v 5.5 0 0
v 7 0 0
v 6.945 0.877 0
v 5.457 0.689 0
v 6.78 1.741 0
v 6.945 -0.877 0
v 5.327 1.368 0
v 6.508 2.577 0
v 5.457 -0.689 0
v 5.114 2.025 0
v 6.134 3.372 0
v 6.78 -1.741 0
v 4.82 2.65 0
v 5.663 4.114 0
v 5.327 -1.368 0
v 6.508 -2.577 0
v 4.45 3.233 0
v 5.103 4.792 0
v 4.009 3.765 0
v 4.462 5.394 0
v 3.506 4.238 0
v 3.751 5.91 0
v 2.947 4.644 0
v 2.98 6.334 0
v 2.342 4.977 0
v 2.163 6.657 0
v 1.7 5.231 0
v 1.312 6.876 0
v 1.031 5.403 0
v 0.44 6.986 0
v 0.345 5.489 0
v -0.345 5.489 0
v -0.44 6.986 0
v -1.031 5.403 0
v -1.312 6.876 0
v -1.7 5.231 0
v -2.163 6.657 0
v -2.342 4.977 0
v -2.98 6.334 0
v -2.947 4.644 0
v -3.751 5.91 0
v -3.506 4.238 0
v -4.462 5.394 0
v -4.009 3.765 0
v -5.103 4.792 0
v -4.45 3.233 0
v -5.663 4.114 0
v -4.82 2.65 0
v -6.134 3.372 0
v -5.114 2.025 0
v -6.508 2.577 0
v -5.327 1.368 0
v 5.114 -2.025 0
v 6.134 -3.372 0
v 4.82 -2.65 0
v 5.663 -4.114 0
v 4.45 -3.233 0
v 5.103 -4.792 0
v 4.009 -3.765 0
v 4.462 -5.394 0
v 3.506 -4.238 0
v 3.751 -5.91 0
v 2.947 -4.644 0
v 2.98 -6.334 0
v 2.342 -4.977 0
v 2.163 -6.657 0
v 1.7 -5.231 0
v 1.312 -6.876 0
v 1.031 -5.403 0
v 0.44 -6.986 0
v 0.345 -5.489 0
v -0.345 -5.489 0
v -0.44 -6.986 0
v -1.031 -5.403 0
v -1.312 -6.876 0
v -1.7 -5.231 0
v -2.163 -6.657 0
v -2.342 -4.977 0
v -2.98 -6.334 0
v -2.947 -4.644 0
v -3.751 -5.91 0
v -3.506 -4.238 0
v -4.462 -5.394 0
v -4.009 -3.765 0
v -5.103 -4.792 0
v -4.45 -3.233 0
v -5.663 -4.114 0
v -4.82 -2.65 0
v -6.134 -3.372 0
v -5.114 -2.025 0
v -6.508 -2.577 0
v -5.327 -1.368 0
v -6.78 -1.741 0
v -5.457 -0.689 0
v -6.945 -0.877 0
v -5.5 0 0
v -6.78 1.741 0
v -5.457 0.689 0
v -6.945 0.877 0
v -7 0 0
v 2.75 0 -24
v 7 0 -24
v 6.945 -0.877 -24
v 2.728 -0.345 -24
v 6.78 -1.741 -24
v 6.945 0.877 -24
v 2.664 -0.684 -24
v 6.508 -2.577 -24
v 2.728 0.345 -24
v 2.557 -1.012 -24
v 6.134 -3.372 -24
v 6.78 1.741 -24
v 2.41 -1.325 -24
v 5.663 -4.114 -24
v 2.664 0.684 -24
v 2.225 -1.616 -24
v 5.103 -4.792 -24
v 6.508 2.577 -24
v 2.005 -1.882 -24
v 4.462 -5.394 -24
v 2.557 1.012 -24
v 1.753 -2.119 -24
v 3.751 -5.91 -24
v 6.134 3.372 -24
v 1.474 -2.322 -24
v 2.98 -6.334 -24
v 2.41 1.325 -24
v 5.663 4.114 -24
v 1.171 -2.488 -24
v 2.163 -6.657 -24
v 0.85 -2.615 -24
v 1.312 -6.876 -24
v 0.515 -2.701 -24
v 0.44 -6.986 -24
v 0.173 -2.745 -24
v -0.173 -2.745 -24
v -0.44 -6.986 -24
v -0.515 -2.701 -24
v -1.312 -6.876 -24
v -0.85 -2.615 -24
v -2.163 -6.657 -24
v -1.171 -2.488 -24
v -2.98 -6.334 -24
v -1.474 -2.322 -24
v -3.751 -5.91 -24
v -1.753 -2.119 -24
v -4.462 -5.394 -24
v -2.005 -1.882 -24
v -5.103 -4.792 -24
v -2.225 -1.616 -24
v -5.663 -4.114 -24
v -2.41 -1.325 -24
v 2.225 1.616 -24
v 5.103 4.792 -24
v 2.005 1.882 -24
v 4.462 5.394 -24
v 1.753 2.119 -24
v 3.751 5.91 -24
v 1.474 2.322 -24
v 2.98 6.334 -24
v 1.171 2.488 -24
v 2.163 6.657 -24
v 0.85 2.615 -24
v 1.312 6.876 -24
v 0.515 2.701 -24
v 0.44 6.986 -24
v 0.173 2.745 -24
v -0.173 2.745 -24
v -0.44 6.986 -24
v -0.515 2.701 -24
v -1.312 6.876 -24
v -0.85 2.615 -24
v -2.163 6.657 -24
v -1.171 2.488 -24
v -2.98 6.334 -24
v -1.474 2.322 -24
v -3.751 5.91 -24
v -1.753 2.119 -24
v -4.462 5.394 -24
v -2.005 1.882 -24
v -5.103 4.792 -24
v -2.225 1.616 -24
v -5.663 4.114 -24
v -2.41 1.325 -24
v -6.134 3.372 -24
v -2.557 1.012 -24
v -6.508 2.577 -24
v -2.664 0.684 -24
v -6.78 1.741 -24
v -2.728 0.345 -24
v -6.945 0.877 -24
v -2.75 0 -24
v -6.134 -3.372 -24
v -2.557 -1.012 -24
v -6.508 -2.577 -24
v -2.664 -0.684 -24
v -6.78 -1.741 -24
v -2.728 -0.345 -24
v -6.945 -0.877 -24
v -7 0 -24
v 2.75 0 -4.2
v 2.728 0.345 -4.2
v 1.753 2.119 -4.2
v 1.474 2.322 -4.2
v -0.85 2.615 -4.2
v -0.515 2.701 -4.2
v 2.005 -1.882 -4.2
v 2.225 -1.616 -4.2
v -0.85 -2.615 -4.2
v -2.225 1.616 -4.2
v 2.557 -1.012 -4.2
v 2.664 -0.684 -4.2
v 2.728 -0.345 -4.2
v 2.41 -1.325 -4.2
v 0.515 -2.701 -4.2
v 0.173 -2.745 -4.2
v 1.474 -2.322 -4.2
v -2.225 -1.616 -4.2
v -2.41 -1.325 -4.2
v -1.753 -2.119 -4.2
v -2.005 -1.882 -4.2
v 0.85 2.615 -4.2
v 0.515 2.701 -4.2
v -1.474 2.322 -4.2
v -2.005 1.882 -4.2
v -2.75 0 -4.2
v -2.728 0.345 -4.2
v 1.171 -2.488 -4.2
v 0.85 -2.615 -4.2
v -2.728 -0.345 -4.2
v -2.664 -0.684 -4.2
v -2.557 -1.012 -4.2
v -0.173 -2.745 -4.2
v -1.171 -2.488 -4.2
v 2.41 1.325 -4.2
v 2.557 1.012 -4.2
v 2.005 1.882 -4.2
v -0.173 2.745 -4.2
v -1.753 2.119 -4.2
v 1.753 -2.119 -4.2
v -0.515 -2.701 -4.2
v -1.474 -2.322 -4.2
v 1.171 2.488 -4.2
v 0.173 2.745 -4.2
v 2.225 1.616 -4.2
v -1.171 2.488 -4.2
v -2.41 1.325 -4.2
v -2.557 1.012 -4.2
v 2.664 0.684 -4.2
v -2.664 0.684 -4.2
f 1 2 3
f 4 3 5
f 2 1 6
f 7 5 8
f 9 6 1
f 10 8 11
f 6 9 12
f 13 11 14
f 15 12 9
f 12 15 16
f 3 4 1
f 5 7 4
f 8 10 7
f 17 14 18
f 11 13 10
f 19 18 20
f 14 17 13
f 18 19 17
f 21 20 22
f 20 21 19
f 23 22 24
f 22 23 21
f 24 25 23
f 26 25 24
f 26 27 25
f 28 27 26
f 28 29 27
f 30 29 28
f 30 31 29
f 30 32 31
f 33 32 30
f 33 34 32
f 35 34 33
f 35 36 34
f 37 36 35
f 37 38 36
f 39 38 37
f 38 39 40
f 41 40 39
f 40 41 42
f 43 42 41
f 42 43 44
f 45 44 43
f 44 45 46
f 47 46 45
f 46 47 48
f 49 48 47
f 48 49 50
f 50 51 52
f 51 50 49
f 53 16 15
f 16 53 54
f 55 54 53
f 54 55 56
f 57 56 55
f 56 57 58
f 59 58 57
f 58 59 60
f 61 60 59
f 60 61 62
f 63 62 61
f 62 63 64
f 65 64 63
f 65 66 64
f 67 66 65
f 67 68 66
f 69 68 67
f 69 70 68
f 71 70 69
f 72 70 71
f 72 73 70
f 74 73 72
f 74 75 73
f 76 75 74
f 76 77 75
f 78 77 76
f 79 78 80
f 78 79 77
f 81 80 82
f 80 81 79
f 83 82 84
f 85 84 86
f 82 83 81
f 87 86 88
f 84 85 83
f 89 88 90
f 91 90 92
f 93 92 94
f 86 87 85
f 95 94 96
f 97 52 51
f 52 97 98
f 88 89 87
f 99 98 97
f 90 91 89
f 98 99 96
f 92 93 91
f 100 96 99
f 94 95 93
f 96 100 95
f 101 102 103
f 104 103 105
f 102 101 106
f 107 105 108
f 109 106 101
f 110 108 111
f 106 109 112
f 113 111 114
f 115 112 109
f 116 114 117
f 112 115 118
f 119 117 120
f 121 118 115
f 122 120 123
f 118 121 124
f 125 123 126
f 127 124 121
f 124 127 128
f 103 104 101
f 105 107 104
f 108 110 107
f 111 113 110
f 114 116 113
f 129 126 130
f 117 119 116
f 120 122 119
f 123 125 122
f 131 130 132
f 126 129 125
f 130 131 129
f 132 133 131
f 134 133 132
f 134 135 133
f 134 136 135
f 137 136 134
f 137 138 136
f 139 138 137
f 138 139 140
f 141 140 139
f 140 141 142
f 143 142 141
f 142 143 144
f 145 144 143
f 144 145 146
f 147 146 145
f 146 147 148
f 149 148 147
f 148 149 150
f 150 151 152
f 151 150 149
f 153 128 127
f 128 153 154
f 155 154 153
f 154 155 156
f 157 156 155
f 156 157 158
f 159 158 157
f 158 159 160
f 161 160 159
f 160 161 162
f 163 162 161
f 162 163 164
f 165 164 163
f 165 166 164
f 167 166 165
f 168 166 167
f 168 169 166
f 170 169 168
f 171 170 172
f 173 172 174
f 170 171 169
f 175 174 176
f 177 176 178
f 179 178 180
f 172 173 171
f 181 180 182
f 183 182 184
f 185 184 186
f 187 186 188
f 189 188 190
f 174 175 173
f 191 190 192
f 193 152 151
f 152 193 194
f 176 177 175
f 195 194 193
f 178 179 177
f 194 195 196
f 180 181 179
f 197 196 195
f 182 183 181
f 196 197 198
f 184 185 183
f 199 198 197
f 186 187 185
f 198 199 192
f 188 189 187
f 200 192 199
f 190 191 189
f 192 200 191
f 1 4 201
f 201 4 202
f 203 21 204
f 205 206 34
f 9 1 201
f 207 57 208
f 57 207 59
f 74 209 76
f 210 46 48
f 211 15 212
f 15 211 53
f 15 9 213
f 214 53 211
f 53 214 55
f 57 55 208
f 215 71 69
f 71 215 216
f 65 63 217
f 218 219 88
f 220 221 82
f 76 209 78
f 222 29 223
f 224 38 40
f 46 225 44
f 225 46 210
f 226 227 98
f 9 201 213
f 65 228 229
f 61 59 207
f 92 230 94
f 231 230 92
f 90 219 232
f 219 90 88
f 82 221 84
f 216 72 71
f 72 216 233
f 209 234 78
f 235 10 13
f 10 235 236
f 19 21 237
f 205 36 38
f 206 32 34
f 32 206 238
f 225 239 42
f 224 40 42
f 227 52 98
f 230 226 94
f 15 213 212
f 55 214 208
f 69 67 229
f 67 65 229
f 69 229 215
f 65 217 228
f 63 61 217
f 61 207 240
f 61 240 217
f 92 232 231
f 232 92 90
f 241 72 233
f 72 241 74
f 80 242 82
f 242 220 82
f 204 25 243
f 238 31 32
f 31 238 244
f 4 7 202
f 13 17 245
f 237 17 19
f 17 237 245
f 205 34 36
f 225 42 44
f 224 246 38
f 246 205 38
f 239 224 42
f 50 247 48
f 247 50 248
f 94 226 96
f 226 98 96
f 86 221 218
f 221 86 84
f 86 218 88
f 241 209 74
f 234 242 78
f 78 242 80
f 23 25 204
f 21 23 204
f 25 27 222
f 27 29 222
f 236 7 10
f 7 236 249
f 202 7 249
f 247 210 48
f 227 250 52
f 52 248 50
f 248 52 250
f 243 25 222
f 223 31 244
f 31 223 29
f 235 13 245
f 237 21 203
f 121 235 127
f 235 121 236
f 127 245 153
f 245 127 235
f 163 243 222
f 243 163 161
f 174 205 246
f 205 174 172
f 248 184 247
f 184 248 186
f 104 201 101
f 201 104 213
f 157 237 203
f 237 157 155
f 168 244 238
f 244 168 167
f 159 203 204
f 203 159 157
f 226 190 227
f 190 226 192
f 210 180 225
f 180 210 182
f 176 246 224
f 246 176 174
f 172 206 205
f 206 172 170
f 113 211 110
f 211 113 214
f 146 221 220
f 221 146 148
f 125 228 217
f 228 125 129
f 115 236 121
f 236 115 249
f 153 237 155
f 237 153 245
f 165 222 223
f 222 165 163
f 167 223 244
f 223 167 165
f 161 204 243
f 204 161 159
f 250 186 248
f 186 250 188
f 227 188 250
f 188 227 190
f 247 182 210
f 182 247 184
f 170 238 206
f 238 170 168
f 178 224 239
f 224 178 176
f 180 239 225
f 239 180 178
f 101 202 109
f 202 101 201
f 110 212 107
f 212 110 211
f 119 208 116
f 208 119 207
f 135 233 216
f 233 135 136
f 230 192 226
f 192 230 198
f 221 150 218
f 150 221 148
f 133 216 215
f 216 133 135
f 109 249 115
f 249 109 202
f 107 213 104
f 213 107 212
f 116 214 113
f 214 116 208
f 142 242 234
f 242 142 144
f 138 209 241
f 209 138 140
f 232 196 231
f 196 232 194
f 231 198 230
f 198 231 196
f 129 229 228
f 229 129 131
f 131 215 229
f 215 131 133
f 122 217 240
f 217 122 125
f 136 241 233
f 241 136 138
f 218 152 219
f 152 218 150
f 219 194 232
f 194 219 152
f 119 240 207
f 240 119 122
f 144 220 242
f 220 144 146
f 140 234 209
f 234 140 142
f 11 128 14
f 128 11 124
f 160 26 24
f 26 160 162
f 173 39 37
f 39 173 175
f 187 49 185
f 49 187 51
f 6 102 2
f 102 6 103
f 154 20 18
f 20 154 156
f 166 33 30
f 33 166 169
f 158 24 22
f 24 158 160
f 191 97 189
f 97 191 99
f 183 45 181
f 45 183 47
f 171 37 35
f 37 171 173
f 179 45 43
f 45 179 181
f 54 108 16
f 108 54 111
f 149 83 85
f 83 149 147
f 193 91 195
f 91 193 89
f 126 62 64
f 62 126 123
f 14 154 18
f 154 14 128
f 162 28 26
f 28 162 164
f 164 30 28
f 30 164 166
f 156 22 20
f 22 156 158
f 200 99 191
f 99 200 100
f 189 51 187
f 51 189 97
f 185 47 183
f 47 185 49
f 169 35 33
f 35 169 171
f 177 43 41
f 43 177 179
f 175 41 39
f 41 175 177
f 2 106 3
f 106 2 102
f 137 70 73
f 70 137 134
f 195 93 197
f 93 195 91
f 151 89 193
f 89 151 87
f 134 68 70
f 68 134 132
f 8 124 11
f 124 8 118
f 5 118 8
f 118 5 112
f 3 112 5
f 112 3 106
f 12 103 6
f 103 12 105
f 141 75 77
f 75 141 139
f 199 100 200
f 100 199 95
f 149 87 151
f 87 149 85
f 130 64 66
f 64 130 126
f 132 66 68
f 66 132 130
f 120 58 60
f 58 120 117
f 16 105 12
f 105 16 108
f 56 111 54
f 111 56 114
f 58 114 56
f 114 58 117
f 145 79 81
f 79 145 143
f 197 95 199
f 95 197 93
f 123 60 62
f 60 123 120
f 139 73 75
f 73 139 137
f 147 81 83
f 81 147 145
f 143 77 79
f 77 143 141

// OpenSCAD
$fn = 50;


difference() {
	union() {
		translate(v = [0, 0, -24.0000000000]) {
			cylinder(h = 24, r = 7.0000000000);
		}
		cylinder(h = 0, r = 13.0000000000);
	}
	union() {
		translate(v = [0, 0, 0]) {
			rotate(a = [0, 0, 0]) {
				difference() {
					union() {
						#translate(v = [0, 0, -24.0000000000]) {
							cylinder(h = 24, r = 2.2500000000);
						}
						#translate(v = [0, 0, -4.2000000000]) {
							cylinder(h = 4.2000000000, r = 7.0000000000, r1 = 2.7500000000, r2 = 5.5000000000);
						}
						#translate(v = [0, 0, -24.0000000000]) {
							cylinder(h = 24, r = 2.7500000000);
						}
						#translate(v = [0, 0, -24.0000000000]) {
							cylinder(h = 24, r = 2.2500000000);
						}
					}
					union();
				}
			}
		}
	}
}
